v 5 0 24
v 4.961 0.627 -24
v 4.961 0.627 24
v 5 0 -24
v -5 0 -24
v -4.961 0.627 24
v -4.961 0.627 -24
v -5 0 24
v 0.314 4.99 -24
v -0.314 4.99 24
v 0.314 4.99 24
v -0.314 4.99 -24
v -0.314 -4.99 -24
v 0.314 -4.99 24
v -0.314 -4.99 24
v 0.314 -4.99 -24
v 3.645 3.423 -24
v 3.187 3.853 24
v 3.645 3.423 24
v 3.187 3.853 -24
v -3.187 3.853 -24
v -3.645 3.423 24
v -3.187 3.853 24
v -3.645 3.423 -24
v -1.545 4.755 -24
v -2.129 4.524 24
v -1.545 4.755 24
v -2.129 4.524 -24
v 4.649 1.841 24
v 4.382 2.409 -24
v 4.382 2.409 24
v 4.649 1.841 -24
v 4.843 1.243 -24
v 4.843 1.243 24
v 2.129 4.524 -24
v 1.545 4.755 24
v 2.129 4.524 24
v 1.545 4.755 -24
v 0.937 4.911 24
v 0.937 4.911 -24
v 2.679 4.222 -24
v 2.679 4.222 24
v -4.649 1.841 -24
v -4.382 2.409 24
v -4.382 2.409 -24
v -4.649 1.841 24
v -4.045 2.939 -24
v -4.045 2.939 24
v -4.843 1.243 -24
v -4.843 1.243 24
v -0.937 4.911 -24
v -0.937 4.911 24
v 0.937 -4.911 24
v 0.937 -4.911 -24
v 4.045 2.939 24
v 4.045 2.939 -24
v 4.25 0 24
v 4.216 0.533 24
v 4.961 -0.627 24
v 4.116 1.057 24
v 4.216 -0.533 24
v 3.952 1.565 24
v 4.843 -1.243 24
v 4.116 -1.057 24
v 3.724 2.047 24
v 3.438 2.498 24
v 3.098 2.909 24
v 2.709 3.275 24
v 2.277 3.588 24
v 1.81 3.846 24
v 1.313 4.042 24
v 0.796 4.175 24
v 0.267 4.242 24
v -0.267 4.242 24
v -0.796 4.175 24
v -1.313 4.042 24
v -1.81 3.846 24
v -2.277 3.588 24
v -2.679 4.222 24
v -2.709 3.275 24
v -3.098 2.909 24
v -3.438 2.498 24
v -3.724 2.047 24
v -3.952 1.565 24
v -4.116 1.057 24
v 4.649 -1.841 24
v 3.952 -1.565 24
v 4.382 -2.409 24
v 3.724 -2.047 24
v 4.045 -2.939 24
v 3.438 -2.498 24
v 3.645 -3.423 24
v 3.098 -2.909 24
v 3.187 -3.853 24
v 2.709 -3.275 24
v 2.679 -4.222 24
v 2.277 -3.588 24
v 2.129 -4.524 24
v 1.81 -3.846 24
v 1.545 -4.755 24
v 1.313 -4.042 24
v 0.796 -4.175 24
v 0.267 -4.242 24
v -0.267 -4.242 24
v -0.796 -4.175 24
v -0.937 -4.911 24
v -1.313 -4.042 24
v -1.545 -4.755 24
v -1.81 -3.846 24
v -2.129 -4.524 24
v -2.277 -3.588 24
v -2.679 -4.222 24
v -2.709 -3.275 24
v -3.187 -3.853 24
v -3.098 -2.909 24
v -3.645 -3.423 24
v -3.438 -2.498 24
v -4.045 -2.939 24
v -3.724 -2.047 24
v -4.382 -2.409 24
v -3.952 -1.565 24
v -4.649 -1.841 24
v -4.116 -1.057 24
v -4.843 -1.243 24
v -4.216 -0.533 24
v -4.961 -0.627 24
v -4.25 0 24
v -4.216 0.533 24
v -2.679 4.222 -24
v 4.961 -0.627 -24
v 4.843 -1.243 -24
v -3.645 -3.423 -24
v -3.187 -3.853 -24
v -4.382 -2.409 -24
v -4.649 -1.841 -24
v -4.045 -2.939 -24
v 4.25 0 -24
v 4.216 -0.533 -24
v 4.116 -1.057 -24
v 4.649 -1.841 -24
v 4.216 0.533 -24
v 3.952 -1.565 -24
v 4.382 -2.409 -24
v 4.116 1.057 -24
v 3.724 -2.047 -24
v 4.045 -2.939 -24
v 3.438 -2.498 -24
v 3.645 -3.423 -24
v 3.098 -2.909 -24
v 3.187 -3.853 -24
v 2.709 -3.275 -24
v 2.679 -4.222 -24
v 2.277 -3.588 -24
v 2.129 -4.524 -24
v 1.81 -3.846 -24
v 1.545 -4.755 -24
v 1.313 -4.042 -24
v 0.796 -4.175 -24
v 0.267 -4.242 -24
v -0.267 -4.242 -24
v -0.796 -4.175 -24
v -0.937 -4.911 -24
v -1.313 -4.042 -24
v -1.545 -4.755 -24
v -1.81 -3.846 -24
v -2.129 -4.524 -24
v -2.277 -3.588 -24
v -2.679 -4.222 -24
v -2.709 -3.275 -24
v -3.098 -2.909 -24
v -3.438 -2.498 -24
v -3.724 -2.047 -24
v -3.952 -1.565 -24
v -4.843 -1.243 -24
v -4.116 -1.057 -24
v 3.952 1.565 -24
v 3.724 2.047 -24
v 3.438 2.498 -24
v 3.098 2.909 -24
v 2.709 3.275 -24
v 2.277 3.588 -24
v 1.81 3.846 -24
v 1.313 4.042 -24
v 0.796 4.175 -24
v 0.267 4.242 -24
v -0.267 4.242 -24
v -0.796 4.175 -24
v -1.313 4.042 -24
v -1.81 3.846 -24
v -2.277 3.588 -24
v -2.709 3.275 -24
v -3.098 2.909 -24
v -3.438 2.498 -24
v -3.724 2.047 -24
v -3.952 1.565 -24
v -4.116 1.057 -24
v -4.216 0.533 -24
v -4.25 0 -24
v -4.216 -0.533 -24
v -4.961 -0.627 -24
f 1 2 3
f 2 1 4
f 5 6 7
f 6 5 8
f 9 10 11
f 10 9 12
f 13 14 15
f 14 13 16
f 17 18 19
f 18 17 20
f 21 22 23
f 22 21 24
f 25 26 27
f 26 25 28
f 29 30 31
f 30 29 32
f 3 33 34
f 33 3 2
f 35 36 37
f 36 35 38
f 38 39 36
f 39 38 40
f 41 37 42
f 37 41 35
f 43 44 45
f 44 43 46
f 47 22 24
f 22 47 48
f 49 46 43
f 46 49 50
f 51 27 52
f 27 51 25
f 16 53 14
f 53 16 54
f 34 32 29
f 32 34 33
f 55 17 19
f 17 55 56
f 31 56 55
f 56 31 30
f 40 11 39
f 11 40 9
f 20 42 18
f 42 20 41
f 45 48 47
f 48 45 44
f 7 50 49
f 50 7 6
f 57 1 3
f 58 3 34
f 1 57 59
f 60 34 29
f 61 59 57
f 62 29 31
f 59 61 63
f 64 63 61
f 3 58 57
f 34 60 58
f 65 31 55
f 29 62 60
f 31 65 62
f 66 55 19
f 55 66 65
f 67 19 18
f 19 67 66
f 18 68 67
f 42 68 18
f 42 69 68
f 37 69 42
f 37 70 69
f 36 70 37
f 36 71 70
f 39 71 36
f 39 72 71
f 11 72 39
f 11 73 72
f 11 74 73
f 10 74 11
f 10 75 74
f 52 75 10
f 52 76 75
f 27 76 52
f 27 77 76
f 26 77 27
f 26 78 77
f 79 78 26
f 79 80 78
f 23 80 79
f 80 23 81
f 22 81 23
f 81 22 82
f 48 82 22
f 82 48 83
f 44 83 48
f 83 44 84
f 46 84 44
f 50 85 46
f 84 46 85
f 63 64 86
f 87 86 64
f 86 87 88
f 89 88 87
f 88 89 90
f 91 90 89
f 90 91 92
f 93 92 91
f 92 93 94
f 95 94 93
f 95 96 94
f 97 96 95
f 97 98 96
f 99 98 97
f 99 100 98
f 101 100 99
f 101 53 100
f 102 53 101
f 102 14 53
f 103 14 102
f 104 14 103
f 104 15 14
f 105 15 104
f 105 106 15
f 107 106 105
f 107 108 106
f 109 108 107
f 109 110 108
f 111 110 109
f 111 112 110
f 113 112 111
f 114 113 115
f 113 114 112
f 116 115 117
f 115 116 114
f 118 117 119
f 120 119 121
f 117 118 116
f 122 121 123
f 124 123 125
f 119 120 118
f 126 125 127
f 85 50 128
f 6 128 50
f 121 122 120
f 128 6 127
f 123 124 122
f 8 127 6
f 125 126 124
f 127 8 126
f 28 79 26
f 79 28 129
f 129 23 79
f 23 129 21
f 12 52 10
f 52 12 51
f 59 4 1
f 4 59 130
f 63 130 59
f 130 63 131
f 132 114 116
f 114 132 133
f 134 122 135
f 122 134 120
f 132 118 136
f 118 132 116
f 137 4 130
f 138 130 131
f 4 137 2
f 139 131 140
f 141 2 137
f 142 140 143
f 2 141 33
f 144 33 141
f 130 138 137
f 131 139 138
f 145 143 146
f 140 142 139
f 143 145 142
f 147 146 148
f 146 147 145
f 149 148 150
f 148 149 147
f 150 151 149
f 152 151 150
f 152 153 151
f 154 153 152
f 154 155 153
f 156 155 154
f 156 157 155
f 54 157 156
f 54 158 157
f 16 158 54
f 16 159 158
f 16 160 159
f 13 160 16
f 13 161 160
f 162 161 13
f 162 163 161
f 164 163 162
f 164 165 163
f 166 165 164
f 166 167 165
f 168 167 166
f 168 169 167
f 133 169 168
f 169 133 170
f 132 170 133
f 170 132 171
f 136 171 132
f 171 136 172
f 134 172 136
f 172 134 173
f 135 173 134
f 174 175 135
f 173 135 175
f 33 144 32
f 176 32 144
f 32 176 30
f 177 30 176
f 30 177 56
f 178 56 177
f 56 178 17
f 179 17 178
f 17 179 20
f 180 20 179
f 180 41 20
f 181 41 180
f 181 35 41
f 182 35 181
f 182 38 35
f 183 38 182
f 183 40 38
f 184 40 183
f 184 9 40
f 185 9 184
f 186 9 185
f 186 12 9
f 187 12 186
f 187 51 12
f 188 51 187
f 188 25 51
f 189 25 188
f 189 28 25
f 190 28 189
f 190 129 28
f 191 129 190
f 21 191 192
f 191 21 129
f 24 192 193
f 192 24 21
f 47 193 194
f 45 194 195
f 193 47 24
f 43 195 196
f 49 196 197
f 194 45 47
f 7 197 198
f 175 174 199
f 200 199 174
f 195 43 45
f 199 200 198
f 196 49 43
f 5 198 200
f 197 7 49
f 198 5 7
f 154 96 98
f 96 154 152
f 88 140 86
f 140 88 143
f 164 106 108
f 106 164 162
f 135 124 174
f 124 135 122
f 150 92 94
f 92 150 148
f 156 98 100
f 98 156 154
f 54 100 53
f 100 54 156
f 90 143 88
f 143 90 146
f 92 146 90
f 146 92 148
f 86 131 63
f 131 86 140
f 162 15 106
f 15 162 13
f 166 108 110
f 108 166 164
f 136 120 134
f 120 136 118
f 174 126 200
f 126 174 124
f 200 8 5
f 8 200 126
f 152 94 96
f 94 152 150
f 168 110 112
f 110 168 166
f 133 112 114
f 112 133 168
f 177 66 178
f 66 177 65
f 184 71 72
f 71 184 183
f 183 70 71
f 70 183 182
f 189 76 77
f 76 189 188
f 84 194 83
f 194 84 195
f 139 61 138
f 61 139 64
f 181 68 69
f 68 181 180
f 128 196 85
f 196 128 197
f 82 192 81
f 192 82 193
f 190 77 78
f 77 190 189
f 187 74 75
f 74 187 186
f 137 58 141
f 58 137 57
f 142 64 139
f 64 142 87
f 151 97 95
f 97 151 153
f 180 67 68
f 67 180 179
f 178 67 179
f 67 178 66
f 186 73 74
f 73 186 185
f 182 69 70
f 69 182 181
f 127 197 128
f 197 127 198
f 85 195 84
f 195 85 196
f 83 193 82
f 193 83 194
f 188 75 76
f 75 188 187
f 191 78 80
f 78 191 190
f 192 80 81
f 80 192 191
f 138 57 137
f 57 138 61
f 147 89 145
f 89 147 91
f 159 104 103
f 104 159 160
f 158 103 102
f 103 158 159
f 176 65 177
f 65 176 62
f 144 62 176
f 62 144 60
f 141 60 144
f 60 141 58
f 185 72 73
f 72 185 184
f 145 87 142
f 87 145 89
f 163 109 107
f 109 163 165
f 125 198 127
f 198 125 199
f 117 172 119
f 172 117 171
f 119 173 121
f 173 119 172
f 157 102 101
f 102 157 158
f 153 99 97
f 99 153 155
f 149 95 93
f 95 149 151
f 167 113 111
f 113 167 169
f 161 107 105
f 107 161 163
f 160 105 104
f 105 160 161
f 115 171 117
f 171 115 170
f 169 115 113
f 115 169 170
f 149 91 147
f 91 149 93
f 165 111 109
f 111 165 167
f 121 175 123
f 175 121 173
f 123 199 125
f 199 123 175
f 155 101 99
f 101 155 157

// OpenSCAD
$fn = 50;


difference() {
	union() {
		translate(v = [0, 0, -24.0000000000]) {
			cylinder(h = 48, r = 5.0000000000);
		}
	}
	union() {
		translate(v = [0, 0, -100.0000000000]) {
			cylinder(h = 200, r = 4.2500000000);
		}
	}
}
